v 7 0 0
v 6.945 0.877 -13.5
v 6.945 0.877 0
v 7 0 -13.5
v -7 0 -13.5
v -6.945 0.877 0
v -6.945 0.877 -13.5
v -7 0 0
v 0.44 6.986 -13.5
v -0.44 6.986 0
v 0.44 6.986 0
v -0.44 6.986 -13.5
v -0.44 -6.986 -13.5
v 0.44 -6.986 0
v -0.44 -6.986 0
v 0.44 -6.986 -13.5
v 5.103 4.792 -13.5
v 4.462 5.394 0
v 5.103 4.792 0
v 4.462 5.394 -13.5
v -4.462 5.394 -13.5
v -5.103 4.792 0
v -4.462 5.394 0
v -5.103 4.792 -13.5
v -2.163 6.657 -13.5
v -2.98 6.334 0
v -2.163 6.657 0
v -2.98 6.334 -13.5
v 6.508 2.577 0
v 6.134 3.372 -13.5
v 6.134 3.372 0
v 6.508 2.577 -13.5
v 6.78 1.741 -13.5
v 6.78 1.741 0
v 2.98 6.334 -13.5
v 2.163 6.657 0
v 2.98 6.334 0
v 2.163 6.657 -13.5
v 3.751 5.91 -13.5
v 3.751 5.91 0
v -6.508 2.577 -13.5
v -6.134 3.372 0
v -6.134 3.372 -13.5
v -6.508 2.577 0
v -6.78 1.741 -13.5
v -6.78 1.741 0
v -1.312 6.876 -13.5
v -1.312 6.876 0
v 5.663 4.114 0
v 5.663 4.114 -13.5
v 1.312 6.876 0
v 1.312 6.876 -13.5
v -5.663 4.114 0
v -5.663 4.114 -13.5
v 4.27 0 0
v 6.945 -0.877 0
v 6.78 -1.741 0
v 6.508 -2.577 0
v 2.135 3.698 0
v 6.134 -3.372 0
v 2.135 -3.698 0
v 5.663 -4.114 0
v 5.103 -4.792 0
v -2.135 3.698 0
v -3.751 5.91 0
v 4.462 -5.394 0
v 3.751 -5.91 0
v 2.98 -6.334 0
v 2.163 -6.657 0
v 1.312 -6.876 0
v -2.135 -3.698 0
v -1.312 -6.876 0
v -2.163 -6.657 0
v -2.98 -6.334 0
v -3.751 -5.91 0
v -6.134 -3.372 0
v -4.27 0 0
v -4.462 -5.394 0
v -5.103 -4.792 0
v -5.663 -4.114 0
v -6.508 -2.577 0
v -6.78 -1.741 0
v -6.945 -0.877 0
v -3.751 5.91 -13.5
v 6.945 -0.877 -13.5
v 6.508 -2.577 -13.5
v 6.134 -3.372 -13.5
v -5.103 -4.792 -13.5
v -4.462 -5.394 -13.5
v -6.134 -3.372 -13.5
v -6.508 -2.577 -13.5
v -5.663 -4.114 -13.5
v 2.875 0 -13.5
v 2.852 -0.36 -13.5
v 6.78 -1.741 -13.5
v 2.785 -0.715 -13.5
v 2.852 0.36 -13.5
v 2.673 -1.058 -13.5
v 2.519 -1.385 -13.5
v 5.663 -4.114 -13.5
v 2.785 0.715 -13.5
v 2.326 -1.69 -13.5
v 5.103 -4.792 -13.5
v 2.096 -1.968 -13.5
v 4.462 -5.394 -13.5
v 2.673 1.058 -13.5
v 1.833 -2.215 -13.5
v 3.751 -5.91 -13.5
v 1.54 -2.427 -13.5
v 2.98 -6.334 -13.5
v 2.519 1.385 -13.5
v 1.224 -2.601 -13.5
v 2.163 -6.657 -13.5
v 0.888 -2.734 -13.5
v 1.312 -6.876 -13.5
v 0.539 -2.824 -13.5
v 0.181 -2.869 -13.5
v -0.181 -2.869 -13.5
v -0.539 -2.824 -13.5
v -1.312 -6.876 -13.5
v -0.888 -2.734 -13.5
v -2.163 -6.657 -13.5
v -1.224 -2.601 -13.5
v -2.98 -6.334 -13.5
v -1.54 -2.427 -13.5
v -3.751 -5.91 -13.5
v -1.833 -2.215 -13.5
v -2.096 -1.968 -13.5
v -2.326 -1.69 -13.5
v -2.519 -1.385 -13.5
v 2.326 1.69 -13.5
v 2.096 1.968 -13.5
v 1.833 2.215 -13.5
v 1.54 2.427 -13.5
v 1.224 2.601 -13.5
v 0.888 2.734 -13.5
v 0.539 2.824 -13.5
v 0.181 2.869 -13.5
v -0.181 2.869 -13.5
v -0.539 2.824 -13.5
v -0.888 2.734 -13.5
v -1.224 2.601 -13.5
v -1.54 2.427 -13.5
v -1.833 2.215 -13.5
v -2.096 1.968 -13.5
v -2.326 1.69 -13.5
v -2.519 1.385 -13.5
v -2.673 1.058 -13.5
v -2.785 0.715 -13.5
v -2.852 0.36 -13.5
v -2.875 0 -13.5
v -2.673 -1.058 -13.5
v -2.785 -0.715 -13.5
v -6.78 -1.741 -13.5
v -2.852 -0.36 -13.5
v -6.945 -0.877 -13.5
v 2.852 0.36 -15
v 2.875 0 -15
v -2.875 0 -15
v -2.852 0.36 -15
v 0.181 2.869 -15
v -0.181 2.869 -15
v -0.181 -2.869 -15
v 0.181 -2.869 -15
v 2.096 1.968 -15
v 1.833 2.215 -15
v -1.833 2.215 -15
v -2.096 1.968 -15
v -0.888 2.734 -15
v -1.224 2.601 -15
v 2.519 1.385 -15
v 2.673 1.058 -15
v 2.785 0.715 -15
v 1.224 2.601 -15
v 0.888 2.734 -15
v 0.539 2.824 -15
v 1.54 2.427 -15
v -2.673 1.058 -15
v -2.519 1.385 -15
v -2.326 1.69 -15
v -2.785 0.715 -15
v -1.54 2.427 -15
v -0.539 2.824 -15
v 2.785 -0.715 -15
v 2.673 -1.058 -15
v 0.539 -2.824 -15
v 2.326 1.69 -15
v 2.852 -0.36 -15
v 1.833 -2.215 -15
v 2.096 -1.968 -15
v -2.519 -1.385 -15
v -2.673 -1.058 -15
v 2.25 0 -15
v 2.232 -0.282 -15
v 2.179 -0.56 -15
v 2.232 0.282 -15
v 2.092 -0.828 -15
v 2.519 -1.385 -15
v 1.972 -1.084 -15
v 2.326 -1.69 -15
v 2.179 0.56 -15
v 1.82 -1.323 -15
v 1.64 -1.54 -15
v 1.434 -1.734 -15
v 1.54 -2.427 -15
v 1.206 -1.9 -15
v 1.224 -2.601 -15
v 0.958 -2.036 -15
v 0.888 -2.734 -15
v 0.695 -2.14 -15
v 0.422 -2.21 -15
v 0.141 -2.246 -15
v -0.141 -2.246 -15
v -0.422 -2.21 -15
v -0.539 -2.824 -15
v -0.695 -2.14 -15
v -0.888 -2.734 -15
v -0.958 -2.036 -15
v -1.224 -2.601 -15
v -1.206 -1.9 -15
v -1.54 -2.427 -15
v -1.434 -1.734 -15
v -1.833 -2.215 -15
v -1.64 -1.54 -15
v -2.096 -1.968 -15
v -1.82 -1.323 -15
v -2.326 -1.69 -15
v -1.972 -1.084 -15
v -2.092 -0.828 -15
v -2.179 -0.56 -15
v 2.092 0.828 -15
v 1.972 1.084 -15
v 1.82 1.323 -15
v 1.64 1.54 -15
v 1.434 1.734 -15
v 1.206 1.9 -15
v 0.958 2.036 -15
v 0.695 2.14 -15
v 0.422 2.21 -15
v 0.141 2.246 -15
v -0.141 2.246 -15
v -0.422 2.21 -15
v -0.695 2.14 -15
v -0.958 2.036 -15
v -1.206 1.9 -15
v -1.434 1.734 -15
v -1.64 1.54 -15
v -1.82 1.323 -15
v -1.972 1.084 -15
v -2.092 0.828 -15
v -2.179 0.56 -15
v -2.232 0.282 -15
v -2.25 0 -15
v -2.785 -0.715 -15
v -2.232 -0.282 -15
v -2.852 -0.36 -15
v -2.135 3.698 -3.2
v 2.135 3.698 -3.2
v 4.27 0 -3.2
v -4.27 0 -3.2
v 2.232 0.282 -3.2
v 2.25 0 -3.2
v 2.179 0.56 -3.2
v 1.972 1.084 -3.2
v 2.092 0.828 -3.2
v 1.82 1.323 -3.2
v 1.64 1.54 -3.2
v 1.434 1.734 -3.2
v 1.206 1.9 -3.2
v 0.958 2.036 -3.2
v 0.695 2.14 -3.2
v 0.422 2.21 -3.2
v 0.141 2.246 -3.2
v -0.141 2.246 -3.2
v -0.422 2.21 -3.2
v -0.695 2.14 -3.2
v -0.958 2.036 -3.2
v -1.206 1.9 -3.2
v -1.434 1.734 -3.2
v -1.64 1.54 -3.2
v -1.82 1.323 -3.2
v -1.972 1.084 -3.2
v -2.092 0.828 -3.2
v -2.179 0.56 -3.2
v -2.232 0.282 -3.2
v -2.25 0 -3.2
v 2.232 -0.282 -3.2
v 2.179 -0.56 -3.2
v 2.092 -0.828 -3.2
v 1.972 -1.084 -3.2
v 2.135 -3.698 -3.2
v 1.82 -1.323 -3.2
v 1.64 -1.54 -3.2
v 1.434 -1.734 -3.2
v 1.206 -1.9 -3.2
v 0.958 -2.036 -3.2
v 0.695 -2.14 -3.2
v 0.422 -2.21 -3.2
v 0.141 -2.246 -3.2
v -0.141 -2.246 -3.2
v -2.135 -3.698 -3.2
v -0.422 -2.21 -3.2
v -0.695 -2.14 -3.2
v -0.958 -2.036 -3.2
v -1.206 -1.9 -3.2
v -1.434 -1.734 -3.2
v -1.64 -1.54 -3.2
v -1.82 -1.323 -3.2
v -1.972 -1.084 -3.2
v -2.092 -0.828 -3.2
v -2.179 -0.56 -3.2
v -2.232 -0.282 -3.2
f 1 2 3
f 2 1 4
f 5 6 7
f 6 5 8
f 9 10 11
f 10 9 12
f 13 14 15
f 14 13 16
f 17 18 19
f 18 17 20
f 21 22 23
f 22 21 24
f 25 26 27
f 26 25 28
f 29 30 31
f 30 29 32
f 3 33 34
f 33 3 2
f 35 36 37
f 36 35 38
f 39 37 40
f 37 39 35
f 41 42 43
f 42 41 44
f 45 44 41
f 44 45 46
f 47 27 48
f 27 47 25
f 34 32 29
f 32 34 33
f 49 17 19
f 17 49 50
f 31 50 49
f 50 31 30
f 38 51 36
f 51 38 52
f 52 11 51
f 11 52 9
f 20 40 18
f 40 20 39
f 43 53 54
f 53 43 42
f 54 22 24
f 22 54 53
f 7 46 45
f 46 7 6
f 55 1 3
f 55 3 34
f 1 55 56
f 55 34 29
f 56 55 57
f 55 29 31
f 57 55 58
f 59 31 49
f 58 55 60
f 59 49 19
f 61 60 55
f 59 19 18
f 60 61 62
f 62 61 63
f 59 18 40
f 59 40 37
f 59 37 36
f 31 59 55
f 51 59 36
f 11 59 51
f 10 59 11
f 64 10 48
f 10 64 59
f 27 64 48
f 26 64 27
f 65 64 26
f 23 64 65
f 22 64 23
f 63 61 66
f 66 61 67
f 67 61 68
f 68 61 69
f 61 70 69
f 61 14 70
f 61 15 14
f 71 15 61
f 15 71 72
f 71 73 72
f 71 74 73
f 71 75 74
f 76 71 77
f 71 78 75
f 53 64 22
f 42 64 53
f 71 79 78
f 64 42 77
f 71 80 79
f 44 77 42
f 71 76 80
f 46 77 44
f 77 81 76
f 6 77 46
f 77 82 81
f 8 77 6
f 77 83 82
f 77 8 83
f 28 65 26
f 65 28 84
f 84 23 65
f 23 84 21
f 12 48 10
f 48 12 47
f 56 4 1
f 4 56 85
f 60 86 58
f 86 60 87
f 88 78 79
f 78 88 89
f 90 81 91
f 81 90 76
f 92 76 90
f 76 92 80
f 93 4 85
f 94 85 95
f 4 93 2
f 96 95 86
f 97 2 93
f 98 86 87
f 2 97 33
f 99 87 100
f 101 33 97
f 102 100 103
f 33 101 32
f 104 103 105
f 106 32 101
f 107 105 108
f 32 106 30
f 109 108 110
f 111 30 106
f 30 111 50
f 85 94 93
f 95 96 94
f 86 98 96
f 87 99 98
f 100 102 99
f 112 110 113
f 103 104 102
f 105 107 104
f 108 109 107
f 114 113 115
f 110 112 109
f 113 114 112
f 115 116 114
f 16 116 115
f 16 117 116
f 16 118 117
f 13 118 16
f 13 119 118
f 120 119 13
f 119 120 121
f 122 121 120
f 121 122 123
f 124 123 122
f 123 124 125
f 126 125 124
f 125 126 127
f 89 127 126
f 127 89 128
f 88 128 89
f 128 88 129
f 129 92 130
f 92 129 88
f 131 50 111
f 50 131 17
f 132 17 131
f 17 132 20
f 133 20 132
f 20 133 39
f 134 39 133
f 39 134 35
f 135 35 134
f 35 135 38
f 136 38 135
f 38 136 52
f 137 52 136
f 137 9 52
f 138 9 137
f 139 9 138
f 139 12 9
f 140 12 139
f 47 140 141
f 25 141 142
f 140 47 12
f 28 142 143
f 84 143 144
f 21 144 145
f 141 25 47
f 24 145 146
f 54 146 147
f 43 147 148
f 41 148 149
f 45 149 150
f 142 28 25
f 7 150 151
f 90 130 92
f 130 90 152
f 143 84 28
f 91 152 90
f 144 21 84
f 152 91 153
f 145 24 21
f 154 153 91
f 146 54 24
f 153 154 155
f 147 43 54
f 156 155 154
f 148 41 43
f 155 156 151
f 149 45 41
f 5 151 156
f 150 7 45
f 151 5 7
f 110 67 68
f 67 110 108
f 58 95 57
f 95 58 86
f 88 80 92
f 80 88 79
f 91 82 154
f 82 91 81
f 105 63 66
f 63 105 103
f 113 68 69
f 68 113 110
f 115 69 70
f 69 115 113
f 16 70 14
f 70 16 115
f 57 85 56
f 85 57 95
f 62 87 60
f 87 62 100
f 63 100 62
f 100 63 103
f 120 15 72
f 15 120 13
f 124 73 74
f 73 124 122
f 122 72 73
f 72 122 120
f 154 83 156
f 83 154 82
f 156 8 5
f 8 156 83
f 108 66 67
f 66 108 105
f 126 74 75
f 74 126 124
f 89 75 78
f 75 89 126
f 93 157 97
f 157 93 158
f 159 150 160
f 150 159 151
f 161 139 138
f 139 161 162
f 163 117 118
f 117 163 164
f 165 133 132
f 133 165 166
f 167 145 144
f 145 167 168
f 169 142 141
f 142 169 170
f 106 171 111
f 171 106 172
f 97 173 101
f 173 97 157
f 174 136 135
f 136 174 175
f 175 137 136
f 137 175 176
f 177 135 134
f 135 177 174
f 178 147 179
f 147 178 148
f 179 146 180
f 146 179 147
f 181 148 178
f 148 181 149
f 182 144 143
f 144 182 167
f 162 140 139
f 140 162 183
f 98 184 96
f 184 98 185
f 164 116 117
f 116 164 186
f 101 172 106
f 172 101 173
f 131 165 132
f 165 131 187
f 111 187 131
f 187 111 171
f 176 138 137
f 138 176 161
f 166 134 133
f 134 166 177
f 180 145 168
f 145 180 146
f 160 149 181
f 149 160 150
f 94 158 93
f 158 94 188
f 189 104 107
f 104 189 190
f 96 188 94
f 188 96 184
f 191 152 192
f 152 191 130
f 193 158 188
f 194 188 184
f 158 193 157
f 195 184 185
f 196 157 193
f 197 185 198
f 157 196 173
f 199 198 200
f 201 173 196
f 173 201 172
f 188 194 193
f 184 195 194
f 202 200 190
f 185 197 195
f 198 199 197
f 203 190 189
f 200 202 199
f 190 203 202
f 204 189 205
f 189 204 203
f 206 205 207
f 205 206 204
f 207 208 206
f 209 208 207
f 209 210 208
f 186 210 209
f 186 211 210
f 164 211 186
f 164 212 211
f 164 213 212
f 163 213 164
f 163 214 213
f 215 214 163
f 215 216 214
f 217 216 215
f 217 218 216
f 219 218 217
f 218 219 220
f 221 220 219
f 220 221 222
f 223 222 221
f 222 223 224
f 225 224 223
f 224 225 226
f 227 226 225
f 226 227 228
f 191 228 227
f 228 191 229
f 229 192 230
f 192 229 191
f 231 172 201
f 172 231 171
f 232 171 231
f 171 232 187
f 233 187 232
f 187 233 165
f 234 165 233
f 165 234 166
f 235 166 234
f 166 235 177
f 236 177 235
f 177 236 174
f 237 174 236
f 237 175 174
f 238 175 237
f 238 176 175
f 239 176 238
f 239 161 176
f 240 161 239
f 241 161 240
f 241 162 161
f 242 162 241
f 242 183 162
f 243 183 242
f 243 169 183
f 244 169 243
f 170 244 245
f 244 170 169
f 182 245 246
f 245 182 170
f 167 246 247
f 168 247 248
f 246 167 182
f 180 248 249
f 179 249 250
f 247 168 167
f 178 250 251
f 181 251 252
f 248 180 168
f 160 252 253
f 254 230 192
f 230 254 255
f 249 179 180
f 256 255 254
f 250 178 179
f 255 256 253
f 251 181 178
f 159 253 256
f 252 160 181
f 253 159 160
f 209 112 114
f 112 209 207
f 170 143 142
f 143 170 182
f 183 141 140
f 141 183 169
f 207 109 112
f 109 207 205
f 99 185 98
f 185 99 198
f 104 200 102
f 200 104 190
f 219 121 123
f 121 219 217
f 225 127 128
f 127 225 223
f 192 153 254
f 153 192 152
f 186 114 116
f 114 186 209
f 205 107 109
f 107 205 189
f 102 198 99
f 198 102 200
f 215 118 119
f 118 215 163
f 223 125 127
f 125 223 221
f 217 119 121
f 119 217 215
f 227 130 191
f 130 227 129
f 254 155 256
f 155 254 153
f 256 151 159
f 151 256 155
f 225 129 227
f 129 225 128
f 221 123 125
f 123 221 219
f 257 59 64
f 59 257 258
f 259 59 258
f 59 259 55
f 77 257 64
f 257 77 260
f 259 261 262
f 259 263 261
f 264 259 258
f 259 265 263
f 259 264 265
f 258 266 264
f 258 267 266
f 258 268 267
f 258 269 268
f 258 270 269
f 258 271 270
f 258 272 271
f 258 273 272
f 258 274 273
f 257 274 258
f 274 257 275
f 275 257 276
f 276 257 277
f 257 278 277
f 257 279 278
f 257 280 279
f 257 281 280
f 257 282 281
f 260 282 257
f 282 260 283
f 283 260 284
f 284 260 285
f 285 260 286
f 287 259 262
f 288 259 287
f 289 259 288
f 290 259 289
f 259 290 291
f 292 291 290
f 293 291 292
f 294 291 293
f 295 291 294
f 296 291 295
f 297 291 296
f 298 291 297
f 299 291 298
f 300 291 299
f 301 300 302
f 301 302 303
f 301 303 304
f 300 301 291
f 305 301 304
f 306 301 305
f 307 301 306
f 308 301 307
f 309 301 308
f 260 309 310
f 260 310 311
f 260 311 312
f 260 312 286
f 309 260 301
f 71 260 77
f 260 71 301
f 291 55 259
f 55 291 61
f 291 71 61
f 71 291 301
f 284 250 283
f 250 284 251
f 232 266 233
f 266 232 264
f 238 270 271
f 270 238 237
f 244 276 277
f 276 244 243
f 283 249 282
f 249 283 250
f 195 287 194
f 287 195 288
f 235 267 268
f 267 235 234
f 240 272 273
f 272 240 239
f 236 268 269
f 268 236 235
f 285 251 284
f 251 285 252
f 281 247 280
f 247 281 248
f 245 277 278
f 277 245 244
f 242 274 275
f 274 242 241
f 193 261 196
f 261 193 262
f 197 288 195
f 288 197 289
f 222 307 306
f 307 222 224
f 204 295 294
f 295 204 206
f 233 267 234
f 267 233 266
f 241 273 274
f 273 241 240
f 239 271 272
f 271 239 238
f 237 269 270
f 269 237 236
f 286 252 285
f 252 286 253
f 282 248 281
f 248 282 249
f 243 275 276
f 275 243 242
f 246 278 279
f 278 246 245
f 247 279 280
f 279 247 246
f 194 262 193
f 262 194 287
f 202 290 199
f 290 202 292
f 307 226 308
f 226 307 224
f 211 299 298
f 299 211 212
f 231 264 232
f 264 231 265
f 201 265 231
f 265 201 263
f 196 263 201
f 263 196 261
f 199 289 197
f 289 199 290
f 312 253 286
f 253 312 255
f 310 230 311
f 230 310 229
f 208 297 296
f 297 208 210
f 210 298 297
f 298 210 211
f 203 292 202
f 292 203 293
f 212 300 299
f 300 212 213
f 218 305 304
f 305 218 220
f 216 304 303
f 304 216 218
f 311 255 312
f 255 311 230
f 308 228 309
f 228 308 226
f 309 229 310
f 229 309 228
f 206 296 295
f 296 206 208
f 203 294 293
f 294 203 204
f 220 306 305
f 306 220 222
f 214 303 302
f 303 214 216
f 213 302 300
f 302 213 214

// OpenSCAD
$fn = 50;


difference() {
	union() {
		translate(v = [0, 0, -13.5000000000]) {
			cylinder(h = 13.5000000000, r = 7.0000000000);
		}
		translate(v = [0, 0, -15.0000000000]) {
			cylinder(h = 15, r = 2.8750000000);
		}
	}
	union() {
		translate(v = [0, 0, 0]) {
			rotate(a = [0, 0, 0]) {
				difference() {
					union() {
						translate(v = [0, 0, -3.2000000000]) {
							linear_extrude(height = 3.2000000000) {
								polygon(points = [[4.2698000000, 0.0000000000], [2.1349000000, 3.6977552691], [-2.1349000000, 3.6977552691], [-4.2698000000, 0.0000000000], [-2.1349000000, -3.6977552691], [2.1349000000, -3.6977552691]]);
							}
						}
					}
					union();
				}
			}
		}
		#translate(v = [0, 0, -100.0000000000]) {
			cylinder(h = 200, r = 2.2500000000);
		}
	}
}
